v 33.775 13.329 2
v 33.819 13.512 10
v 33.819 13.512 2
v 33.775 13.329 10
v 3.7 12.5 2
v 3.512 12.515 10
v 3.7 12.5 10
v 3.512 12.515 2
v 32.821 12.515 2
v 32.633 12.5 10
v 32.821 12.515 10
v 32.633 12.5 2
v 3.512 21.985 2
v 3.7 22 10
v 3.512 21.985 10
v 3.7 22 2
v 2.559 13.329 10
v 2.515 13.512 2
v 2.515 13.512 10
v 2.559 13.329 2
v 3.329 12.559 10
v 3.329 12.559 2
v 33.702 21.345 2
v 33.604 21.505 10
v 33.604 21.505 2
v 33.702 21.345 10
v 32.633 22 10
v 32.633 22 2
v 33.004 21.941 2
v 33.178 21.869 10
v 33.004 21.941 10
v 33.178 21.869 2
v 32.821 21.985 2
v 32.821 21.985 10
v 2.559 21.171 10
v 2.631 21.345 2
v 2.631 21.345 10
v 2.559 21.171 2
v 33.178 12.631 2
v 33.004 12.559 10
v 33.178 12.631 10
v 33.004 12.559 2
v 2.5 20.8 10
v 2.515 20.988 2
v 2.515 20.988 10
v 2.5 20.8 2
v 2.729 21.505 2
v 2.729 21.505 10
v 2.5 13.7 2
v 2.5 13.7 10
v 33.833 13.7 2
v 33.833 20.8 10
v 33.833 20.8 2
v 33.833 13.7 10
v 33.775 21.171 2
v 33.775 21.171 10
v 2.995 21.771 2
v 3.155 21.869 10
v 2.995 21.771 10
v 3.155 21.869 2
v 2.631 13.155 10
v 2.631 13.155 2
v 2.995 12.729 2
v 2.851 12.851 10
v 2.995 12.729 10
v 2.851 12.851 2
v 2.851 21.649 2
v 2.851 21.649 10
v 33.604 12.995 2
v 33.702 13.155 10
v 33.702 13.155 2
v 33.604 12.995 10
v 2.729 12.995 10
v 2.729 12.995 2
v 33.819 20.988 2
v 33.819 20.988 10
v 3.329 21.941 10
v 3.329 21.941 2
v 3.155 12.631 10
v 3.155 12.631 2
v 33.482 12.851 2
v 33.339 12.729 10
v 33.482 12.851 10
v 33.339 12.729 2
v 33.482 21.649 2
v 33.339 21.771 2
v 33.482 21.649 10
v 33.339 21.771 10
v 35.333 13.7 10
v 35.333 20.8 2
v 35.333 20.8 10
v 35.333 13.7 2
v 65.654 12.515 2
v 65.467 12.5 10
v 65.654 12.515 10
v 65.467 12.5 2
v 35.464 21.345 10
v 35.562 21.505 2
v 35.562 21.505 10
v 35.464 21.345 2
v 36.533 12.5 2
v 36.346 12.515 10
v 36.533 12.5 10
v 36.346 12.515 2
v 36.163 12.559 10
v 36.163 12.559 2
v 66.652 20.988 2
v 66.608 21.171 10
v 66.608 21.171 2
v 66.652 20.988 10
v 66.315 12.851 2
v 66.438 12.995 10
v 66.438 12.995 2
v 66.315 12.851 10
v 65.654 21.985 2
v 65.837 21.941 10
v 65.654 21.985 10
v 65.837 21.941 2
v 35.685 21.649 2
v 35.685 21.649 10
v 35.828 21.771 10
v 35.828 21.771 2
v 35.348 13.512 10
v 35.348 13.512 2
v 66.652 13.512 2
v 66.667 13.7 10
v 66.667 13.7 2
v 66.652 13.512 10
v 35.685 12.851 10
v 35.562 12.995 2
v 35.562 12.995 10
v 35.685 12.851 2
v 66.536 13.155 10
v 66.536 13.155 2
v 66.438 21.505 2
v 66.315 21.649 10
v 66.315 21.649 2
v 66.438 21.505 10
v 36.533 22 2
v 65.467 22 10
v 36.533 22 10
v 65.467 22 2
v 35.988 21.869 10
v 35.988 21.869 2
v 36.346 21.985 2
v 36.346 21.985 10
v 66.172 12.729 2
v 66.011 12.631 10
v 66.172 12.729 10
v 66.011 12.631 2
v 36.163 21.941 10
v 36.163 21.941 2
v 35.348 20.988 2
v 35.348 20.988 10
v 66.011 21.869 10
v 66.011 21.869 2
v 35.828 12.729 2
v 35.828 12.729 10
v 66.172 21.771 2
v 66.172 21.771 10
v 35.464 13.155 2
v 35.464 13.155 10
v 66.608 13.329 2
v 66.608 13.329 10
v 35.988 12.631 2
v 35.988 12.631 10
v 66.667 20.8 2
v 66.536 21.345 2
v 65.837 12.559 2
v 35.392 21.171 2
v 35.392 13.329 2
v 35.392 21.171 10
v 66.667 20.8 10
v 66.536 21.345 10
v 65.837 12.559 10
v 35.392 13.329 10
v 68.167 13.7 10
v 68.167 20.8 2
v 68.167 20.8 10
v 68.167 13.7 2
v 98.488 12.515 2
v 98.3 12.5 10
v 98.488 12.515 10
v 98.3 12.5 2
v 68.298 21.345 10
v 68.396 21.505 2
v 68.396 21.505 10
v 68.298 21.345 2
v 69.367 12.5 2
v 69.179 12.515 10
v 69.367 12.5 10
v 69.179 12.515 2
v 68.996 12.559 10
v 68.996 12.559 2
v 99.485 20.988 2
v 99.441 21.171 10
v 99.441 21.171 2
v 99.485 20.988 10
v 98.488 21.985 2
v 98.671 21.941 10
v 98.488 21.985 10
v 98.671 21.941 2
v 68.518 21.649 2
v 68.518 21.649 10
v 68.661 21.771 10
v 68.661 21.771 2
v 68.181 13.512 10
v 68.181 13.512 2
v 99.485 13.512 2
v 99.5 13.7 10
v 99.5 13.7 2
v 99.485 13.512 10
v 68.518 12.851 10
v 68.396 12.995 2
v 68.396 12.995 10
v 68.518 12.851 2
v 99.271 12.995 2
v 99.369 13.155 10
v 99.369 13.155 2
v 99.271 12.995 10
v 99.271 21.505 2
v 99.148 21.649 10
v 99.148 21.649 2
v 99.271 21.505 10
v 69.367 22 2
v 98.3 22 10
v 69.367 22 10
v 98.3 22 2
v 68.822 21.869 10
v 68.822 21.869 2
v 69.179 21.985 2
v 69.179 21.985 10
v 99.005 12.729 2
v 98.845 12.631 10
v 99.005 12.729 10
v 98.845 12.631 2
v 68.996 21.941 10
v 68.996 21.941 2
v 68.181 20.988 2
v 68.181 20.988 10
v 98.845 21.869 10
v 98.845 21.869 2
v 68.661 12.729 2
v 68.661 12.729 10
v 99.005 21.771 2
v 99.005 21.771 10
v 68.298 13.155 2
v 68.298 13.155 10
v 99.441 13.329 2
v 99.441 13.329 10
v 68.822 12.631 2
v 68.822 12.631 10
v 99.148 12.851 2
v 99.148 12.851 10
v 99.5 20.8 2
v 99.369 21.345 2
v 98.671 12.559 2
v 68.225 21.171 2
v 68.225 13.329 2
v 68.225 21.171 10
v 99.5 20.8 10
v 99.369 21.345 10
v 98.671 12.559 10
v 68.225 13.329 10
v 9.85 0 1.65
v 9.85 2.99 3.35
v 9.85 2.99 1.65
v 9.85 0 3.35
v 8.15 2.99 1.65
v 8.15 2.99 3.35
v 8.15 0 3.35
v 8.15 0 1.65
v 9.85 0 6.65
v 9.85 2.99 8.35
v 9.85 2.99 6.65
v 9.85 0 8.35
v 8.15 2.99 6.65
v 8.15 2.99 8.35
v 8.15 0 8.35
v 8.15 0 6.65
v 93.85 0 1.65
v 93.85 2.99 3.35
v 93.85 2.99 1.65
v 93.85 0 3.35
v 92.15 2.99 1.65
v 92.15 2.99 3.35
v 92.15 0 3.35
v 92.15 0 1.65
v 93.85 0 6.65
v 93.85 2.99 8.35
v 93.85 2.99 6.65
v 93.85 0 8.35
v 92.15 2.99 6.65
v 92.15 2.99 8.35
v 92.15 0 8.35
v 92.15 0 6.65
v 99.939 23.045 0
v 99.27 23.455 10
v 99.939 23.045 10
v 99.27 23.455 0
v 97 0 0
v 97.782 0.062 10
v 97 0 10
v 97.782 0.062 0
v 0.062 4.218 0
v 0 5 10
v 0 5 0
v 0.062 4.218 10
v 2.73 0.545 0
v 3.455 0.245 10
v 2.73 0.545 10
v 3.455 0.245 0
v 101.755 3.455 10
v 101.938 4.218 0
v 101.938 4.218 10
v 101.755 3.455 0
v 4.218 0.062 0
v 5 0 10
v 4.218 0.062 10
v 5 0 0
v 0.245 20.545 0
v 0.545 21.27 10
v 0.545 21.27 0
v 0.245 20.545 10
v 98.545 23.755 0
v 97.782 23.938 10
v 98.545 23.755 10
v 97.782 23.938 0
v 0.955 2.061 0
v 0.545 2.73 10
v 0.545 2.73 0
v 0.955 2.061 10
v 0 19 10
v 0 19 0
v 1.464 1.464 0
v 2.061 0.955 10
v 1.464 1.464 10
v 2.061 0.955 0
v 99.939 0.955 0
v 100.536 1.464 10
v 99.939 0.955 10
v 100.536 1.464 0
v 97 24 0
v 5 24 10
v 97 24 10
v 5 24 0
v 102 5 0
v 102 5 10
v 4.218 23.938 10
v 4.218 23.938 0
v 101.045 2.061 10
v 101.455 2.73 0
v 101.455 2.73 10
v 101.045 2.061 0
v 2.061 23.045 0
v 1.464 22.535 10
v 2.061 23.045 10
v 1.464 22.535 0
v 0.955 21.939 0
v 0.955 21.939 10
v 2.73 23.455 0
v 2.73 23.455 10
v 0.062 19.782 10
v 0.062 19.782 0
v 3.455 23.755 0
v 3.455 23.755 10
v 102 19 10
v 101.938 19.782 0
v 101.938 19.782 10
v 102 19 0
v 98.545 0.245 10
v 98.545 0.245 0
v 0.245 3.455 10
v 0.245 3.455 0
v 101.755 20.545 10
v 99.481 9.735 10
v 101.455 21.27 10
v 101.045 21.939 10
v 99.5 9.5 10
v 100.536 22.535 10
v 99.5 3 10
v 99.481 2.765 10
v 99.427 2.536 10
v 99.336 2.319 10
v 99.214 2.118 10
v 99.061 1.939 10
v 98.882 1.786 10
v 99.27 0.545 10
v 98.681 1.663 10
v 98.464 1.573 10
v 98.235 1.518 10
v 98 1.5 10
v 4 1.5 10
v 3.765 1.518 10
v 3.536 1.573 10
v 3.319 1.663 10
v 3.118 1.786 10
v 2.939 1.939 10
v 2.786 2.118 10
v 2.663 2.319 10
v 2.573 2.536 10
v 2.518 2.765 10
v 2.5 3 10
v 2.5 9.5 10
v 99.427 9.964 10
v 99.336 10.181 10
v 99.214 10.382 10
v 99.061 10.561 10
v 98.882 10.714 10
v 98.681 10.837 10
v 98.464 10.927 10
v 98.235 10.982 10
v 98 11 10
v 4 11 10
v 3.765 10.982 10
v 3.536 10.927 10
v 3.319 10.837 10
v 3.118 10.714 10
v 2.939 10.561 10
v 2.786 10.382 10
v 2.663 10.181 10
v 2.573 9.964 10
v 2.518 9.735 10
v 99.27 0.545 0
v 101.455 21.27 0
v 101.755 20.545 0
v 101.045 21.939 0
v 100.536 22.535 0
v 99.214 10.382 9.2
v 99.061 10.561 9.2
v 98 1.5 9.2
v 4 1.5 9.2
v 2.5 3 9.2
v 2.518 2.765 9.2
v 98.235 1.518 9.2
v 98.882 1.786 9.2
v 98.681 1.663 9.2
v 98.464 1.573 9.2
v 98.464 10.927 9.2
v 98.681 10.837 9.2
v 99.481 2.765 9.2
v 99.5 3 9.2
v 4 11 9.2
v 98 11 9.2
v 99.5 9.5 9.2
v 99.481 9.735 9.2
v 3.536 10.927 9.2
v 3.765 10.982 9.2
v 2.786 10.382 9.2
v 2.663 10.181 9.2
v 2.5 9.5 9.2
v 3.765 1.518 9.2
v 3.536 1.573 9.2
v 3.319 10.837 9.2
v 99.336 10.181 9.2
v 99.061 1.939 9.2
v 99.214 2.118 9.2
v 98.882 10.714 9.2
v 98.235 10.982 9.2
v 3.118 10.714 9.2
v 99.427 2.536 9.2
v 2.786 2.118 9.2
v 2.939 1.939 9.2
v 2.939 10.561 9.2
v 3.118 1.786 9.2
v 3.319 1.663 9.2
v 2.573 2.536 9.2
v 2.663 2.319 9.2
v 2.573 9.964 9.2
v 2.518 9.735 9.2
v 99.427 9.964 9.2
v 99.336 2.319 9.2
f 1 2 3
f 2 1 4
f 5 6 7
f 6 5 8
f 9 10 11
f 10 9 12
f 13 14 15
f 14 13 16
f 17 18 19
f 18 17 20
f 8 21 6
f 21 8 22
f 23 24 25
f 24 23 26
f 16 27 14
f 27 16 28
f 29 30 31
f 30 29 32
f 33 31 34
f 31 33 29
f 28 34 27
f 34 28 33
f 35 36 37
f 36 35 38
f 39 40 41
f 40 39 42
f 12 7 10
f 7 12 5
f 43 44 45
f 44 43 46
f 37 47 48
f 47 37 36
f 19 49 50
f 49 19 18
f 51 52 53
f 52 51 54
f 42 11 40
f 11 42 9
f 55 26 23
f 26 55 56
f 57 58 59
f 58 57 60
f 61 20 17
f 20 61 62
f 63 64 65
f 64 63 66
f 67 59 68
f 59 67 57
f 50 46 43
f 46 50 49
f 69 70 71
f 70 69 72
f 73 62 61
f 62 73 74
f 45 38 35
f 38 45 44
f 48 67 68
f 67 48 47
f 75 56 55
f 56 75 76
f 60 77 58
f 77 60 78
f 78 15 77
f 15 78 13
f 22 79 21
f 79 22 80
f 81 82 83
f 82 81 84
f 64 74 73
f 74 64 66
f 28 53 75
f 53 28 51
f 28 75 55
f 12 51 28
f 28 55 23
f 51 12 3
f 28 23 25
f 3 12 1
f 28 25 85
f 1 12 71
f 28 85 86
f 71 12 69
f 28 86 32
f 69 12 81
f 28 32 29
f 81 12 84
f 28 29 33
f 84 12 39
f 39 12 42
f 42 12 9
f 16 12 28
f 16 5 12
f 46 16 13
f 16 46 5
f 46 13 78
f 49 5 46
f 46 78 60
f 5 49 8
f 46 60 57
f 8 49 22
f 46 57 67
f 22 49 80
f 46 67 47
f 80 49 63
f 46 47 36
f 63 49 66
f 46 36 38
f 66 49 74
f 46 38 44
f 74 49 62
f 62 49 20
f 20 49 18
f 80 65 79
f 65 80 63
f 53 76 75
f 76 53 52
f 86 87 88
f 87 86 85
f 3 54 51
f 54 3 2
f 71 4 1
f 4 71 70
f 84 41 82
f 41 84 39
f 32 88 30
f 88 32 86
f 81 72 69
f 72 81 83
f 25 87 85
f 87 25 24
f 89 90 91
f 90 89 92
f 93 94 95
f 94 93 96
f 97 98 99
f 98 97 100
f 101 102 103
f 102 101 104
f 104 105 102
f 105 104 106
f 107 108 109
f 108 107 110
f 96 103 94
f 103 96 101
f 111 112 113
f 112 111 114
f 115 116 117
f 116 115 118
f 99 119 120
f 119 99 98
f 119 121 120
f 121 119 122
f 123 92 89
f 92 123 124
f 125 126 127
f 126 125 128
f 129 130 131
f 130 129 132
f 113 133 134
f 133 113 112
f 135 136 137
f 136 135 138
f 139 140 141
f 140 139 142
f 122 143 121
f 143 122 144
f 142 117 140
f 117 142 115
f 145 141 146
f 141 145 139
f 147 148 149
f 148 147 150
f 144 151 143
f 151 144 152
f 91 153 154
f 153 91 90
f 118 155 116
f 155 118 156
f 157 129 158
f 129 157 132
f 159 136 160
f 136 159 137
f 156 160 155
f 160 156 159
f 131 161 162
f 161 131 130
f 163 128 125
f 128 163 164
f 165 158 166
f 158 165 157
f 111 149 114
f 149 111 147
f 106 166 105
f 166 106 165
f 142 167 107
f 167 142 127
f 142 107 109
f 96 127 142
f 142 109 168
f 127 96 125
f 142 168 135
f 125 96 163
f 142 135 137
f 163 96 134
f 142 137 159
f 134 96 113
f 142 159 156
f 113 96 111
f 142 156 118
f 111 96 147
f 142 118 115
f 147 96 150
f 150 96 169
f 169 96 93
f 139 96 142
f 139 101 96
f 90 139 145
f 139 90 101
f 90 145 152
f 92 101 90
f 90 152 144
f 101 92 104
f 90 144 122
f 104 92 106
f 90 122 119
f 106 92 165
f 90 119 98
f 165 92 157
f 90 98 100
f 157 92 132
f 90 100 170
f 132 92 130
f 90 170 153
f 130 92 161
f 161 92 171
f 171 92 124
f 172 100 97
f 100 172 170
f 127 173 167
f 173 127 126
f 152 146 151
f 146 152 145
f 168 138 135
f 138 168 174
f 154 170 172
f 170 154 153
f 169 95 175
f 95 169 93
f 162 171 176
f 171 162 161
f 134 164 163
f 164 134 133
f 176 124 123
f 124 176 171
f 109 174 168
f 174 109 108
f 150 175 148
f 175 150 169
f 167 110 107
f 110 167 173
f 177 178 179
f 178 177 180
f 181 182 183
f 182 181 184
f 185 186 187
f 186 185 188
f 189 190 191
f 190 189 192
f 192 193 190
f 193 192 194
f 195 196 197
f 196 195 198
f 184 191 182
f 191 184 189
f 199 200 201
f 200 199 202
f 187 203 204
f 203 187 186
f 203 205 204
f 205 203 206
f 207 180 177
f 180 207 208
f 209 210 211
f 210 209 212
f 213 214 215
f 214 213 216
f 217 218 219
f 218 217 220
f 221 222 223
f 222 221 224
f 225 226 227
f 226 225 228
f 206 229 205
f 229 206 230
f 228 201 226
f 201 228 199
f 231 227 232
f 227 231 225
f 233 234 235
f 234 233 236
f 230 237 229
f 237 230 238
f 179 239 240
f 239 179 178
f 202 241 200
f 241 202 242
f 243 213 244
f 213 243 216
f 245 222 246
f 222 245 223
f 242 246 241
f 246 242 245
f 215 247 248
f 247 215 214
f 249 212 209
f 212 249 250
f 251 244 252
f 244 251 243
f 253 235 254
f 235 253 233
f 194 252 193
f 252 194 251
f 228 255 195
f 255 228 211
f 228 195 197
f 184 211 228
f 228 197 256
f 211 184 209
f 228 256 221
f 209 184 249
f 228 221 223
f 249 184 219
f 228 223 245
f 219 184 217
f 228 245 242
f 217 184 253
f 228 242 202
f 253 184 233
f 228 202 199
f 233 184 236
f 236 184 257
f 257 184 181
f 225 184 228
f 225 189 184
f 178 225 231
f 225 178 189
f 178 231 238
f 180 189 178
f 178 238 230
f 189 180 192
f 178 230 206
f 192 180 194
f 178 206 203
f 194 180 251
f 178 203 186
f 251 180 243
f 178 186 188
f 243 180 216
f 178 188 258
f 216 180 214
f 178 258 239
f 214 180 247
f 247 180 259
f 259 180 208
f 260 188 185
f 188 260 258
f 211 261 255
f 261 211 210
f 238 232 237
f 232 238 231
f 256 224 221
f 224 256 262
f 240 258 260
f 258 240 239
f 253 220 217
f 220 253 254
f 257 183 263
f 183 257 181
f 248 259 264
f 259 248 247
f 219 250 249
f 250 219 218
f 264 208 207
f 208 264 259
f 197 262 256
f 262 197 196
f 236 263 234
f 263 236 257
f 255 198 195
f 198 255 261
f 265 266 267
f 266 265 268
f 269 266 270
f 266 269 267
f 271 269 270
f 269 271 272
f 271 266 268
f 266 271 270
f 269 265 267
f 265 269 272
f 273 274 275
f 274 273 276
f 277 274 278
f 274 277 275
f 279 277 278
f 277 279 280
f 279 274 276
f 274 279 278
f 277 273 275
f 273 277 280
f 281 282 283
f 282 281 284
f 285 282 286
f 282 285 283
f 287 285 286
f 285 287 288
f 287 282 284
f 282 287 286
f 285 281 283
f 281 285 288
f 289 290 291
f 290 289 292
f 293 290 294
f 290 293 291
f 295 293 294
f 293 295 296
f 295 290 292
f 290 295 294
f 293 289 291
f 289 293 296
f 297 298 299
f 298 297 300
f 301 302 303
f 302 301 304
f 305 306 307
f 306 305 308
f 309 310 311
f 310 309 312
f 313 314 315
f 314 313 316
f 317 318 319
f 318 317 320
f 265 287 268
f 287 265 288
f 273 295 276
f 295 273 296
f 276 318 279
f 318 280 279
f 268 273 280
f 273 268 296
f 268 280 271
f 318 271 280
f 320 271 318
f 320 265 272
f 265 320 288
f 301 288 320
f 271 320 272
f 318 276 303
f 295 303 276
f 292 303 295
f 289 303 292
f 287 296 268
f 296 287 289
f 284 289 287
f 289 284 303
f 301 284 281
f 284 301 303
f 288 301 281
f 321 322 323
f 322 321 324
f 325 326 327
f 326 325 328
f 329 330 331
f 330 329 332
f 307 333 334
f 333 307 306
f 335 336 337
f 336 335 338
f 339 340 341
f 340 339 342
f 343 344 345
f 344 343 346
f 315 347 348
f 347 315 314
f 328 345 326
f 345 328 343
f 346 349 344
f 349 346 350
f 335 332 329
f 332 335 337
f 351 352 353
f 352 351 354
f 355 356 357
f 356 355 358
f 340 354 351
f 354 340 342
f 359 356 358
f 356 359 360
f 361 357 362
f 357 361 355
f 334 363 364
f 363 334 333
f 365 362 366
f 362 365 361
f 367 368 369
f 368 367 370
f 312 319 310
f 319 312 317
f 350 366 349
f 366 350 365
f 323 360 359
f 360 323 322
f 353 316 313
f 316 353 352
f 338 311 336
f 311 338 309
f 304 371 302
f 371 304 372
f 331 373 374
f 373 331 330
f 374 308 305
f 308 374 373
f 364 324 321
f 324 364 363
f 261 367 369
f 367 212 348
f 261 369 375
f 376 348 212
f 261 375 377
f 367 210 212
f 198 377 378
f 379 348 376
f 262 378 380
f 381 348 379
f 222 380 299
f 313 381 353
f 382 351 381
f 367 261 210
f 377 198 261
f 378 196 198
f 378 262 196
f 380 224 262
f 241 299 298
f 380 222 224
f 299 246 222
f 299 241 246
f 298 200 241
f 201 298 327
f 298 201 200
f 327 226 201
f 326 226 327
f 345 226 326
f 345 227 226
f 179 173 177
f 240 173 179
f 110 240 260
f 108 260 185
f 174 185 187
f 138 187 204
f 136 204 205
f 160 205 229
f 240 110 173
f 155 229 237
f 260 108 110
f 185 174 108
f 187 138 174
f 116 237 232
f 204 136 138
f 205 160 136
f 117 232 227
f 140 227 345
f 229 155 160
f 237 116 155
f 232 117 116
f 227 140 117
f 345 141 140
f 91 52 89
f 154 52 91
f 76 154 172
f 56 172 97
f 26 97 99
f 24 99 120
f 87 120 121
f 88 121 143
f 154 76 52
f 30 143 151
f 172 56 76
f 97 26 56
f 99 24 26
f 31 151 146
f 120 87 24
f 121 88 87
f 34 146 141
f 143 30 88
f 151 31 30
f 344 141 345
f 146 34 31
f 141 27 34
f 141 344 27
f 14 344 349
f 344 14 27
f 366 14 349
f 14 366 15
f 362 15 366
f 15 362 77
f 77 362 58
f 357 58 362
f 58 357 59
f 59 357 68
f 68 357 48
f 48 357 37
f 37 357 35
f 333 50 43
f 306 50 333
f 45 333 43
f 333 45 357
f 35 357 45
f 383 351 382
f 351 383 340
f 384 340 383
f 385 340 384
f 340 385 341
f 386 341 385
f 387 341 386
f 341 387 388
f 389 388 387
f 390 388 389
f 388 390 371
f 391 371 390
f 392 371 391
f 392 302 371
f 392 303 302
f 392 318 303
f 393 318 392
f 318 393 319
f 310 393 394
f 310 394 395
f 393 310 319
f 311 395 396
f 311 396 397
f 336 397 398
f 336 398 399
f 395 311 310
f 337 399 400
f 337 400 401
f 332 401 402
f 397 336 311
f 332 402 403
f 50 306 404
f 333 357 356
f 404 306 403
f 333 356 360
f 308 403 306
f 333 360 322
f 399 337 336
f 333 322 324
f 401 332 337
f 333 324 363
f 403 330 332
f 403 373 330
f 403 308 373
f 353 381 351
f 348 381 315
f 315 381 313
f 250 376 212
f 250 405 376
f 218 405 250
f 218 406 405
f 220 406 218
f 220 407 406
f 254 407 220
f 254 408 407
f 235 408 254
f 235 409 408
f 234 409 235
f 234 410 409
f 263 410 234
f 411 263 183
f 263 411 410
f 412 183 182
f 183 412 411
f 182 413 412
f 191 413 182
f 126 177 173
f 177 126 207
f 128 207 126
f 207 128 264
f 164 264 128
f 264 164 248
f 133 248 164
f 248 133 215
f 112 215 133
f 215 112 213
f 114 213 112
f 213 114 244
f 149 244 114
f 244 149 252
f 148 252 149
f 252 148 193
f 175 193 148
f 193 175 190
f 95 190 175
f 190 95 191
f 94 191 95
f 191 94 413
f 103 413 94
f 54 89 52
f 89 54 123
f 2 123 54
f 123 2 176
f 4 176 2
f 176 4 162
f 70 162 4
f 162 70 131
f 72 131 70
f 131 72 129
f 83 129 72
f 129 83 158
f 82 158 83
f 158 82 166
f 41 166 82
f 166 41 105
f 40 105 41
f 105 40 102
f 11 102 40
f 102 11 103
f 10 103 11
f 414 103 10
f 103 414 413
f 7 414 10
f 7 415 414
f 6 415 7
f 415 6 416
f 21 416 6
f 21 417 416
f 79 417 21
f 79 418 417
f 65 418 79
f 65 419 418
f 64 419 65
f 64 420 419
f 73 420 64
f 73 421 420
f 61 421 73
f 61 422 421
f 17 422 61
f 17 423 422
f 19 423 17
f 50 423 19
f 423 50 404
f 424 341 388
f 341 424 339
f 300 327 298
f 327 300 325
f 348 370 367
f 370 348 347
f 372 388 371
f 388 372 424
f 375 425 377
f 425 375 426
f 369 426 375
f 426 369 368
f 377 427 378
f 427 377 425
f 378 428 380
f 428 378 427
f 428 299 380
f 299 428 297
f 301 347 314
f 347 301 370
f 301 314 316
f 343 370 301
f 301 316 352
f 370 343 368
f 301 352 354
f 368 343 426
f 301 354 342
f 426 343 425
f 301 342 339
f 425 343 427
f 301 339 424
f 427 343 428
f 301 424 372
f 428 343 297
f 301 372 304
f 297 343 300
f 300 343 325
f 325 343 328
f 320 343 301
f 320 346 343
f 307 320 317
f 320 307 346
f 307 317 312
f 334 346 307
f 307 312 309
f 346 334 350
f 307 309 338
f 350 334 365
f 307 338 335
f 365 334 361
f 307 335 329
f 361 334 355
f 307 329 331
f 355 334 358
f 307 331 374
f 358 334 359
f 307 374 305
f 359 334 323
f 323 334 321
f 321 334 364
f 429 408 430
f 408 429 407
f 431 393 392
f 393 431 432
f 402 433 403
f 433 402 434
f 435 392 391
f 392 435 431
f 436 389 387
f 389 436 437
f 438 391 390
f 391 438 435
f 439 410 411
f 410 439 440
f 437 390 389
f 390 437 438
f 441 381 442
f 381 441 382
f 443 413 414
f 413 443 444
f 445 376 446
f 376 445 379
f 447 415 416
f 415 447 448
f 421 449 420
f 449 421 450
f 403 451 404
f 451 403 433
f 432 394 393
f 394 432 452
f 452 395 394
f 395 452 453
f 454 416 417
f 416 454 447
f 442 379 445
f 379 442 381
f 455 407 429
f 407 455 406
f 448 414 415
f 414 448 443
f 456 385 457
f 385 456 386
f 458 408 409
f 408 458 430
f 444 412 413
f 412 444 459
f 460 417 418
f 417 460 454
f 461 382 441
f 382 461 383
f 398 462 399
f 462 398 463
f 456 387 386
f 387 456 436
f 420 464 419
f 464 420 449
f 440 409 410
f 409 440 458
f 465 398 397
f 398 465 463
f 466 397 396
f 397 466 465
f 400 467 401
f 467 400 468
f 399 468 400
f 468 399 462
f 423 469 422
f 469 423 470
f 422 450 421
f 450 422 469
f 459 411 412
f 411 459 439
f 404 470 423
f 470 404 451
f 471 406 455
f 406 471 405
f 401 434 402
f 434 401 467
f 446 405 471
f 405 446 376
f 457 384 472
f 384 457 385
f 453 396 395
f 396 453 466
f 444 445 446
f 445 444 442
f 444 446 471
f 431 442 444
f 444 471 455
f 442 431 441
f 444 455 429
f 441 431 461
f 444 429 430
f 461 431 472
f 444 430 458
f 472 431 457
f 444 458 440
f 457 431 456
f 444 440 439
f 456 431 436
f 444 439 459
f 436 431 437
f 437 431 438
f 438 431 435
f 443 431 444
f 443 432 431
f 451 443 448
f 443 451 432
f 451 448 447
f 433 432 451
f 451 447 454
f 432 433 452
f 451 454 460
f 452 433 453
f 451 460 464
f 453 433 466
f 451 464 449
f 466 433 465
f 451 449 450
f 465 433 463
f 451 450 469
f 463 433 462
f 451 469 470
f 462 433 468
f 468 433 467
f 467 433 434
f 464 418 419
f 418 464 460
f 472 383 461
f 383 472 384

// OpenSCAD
// TV_Console_Body.stl  -  Store Versile room frame (Rev C)
// Quantity: 1   Filament: Black (PLA Basic / Matte Charcoal)
// Print: layer 0.16 mm, infill 15%, 3 walls, brim 0 mm, NO supports
// Orientation: back  (lying on its back, front face up)
// Notes: Lying on its back: bays and drawer recess face up.
// The library draws parts with their front toward +Y; mirror([0,1,0]) makes the real
// part face the viewer correctly (see build.py). Edit dimensions in versile_parts.scad.
use <../versile_parts.scad>

rotate([-90, 0, 0]) mirror([0, 1, 0]) tv_console_body();
